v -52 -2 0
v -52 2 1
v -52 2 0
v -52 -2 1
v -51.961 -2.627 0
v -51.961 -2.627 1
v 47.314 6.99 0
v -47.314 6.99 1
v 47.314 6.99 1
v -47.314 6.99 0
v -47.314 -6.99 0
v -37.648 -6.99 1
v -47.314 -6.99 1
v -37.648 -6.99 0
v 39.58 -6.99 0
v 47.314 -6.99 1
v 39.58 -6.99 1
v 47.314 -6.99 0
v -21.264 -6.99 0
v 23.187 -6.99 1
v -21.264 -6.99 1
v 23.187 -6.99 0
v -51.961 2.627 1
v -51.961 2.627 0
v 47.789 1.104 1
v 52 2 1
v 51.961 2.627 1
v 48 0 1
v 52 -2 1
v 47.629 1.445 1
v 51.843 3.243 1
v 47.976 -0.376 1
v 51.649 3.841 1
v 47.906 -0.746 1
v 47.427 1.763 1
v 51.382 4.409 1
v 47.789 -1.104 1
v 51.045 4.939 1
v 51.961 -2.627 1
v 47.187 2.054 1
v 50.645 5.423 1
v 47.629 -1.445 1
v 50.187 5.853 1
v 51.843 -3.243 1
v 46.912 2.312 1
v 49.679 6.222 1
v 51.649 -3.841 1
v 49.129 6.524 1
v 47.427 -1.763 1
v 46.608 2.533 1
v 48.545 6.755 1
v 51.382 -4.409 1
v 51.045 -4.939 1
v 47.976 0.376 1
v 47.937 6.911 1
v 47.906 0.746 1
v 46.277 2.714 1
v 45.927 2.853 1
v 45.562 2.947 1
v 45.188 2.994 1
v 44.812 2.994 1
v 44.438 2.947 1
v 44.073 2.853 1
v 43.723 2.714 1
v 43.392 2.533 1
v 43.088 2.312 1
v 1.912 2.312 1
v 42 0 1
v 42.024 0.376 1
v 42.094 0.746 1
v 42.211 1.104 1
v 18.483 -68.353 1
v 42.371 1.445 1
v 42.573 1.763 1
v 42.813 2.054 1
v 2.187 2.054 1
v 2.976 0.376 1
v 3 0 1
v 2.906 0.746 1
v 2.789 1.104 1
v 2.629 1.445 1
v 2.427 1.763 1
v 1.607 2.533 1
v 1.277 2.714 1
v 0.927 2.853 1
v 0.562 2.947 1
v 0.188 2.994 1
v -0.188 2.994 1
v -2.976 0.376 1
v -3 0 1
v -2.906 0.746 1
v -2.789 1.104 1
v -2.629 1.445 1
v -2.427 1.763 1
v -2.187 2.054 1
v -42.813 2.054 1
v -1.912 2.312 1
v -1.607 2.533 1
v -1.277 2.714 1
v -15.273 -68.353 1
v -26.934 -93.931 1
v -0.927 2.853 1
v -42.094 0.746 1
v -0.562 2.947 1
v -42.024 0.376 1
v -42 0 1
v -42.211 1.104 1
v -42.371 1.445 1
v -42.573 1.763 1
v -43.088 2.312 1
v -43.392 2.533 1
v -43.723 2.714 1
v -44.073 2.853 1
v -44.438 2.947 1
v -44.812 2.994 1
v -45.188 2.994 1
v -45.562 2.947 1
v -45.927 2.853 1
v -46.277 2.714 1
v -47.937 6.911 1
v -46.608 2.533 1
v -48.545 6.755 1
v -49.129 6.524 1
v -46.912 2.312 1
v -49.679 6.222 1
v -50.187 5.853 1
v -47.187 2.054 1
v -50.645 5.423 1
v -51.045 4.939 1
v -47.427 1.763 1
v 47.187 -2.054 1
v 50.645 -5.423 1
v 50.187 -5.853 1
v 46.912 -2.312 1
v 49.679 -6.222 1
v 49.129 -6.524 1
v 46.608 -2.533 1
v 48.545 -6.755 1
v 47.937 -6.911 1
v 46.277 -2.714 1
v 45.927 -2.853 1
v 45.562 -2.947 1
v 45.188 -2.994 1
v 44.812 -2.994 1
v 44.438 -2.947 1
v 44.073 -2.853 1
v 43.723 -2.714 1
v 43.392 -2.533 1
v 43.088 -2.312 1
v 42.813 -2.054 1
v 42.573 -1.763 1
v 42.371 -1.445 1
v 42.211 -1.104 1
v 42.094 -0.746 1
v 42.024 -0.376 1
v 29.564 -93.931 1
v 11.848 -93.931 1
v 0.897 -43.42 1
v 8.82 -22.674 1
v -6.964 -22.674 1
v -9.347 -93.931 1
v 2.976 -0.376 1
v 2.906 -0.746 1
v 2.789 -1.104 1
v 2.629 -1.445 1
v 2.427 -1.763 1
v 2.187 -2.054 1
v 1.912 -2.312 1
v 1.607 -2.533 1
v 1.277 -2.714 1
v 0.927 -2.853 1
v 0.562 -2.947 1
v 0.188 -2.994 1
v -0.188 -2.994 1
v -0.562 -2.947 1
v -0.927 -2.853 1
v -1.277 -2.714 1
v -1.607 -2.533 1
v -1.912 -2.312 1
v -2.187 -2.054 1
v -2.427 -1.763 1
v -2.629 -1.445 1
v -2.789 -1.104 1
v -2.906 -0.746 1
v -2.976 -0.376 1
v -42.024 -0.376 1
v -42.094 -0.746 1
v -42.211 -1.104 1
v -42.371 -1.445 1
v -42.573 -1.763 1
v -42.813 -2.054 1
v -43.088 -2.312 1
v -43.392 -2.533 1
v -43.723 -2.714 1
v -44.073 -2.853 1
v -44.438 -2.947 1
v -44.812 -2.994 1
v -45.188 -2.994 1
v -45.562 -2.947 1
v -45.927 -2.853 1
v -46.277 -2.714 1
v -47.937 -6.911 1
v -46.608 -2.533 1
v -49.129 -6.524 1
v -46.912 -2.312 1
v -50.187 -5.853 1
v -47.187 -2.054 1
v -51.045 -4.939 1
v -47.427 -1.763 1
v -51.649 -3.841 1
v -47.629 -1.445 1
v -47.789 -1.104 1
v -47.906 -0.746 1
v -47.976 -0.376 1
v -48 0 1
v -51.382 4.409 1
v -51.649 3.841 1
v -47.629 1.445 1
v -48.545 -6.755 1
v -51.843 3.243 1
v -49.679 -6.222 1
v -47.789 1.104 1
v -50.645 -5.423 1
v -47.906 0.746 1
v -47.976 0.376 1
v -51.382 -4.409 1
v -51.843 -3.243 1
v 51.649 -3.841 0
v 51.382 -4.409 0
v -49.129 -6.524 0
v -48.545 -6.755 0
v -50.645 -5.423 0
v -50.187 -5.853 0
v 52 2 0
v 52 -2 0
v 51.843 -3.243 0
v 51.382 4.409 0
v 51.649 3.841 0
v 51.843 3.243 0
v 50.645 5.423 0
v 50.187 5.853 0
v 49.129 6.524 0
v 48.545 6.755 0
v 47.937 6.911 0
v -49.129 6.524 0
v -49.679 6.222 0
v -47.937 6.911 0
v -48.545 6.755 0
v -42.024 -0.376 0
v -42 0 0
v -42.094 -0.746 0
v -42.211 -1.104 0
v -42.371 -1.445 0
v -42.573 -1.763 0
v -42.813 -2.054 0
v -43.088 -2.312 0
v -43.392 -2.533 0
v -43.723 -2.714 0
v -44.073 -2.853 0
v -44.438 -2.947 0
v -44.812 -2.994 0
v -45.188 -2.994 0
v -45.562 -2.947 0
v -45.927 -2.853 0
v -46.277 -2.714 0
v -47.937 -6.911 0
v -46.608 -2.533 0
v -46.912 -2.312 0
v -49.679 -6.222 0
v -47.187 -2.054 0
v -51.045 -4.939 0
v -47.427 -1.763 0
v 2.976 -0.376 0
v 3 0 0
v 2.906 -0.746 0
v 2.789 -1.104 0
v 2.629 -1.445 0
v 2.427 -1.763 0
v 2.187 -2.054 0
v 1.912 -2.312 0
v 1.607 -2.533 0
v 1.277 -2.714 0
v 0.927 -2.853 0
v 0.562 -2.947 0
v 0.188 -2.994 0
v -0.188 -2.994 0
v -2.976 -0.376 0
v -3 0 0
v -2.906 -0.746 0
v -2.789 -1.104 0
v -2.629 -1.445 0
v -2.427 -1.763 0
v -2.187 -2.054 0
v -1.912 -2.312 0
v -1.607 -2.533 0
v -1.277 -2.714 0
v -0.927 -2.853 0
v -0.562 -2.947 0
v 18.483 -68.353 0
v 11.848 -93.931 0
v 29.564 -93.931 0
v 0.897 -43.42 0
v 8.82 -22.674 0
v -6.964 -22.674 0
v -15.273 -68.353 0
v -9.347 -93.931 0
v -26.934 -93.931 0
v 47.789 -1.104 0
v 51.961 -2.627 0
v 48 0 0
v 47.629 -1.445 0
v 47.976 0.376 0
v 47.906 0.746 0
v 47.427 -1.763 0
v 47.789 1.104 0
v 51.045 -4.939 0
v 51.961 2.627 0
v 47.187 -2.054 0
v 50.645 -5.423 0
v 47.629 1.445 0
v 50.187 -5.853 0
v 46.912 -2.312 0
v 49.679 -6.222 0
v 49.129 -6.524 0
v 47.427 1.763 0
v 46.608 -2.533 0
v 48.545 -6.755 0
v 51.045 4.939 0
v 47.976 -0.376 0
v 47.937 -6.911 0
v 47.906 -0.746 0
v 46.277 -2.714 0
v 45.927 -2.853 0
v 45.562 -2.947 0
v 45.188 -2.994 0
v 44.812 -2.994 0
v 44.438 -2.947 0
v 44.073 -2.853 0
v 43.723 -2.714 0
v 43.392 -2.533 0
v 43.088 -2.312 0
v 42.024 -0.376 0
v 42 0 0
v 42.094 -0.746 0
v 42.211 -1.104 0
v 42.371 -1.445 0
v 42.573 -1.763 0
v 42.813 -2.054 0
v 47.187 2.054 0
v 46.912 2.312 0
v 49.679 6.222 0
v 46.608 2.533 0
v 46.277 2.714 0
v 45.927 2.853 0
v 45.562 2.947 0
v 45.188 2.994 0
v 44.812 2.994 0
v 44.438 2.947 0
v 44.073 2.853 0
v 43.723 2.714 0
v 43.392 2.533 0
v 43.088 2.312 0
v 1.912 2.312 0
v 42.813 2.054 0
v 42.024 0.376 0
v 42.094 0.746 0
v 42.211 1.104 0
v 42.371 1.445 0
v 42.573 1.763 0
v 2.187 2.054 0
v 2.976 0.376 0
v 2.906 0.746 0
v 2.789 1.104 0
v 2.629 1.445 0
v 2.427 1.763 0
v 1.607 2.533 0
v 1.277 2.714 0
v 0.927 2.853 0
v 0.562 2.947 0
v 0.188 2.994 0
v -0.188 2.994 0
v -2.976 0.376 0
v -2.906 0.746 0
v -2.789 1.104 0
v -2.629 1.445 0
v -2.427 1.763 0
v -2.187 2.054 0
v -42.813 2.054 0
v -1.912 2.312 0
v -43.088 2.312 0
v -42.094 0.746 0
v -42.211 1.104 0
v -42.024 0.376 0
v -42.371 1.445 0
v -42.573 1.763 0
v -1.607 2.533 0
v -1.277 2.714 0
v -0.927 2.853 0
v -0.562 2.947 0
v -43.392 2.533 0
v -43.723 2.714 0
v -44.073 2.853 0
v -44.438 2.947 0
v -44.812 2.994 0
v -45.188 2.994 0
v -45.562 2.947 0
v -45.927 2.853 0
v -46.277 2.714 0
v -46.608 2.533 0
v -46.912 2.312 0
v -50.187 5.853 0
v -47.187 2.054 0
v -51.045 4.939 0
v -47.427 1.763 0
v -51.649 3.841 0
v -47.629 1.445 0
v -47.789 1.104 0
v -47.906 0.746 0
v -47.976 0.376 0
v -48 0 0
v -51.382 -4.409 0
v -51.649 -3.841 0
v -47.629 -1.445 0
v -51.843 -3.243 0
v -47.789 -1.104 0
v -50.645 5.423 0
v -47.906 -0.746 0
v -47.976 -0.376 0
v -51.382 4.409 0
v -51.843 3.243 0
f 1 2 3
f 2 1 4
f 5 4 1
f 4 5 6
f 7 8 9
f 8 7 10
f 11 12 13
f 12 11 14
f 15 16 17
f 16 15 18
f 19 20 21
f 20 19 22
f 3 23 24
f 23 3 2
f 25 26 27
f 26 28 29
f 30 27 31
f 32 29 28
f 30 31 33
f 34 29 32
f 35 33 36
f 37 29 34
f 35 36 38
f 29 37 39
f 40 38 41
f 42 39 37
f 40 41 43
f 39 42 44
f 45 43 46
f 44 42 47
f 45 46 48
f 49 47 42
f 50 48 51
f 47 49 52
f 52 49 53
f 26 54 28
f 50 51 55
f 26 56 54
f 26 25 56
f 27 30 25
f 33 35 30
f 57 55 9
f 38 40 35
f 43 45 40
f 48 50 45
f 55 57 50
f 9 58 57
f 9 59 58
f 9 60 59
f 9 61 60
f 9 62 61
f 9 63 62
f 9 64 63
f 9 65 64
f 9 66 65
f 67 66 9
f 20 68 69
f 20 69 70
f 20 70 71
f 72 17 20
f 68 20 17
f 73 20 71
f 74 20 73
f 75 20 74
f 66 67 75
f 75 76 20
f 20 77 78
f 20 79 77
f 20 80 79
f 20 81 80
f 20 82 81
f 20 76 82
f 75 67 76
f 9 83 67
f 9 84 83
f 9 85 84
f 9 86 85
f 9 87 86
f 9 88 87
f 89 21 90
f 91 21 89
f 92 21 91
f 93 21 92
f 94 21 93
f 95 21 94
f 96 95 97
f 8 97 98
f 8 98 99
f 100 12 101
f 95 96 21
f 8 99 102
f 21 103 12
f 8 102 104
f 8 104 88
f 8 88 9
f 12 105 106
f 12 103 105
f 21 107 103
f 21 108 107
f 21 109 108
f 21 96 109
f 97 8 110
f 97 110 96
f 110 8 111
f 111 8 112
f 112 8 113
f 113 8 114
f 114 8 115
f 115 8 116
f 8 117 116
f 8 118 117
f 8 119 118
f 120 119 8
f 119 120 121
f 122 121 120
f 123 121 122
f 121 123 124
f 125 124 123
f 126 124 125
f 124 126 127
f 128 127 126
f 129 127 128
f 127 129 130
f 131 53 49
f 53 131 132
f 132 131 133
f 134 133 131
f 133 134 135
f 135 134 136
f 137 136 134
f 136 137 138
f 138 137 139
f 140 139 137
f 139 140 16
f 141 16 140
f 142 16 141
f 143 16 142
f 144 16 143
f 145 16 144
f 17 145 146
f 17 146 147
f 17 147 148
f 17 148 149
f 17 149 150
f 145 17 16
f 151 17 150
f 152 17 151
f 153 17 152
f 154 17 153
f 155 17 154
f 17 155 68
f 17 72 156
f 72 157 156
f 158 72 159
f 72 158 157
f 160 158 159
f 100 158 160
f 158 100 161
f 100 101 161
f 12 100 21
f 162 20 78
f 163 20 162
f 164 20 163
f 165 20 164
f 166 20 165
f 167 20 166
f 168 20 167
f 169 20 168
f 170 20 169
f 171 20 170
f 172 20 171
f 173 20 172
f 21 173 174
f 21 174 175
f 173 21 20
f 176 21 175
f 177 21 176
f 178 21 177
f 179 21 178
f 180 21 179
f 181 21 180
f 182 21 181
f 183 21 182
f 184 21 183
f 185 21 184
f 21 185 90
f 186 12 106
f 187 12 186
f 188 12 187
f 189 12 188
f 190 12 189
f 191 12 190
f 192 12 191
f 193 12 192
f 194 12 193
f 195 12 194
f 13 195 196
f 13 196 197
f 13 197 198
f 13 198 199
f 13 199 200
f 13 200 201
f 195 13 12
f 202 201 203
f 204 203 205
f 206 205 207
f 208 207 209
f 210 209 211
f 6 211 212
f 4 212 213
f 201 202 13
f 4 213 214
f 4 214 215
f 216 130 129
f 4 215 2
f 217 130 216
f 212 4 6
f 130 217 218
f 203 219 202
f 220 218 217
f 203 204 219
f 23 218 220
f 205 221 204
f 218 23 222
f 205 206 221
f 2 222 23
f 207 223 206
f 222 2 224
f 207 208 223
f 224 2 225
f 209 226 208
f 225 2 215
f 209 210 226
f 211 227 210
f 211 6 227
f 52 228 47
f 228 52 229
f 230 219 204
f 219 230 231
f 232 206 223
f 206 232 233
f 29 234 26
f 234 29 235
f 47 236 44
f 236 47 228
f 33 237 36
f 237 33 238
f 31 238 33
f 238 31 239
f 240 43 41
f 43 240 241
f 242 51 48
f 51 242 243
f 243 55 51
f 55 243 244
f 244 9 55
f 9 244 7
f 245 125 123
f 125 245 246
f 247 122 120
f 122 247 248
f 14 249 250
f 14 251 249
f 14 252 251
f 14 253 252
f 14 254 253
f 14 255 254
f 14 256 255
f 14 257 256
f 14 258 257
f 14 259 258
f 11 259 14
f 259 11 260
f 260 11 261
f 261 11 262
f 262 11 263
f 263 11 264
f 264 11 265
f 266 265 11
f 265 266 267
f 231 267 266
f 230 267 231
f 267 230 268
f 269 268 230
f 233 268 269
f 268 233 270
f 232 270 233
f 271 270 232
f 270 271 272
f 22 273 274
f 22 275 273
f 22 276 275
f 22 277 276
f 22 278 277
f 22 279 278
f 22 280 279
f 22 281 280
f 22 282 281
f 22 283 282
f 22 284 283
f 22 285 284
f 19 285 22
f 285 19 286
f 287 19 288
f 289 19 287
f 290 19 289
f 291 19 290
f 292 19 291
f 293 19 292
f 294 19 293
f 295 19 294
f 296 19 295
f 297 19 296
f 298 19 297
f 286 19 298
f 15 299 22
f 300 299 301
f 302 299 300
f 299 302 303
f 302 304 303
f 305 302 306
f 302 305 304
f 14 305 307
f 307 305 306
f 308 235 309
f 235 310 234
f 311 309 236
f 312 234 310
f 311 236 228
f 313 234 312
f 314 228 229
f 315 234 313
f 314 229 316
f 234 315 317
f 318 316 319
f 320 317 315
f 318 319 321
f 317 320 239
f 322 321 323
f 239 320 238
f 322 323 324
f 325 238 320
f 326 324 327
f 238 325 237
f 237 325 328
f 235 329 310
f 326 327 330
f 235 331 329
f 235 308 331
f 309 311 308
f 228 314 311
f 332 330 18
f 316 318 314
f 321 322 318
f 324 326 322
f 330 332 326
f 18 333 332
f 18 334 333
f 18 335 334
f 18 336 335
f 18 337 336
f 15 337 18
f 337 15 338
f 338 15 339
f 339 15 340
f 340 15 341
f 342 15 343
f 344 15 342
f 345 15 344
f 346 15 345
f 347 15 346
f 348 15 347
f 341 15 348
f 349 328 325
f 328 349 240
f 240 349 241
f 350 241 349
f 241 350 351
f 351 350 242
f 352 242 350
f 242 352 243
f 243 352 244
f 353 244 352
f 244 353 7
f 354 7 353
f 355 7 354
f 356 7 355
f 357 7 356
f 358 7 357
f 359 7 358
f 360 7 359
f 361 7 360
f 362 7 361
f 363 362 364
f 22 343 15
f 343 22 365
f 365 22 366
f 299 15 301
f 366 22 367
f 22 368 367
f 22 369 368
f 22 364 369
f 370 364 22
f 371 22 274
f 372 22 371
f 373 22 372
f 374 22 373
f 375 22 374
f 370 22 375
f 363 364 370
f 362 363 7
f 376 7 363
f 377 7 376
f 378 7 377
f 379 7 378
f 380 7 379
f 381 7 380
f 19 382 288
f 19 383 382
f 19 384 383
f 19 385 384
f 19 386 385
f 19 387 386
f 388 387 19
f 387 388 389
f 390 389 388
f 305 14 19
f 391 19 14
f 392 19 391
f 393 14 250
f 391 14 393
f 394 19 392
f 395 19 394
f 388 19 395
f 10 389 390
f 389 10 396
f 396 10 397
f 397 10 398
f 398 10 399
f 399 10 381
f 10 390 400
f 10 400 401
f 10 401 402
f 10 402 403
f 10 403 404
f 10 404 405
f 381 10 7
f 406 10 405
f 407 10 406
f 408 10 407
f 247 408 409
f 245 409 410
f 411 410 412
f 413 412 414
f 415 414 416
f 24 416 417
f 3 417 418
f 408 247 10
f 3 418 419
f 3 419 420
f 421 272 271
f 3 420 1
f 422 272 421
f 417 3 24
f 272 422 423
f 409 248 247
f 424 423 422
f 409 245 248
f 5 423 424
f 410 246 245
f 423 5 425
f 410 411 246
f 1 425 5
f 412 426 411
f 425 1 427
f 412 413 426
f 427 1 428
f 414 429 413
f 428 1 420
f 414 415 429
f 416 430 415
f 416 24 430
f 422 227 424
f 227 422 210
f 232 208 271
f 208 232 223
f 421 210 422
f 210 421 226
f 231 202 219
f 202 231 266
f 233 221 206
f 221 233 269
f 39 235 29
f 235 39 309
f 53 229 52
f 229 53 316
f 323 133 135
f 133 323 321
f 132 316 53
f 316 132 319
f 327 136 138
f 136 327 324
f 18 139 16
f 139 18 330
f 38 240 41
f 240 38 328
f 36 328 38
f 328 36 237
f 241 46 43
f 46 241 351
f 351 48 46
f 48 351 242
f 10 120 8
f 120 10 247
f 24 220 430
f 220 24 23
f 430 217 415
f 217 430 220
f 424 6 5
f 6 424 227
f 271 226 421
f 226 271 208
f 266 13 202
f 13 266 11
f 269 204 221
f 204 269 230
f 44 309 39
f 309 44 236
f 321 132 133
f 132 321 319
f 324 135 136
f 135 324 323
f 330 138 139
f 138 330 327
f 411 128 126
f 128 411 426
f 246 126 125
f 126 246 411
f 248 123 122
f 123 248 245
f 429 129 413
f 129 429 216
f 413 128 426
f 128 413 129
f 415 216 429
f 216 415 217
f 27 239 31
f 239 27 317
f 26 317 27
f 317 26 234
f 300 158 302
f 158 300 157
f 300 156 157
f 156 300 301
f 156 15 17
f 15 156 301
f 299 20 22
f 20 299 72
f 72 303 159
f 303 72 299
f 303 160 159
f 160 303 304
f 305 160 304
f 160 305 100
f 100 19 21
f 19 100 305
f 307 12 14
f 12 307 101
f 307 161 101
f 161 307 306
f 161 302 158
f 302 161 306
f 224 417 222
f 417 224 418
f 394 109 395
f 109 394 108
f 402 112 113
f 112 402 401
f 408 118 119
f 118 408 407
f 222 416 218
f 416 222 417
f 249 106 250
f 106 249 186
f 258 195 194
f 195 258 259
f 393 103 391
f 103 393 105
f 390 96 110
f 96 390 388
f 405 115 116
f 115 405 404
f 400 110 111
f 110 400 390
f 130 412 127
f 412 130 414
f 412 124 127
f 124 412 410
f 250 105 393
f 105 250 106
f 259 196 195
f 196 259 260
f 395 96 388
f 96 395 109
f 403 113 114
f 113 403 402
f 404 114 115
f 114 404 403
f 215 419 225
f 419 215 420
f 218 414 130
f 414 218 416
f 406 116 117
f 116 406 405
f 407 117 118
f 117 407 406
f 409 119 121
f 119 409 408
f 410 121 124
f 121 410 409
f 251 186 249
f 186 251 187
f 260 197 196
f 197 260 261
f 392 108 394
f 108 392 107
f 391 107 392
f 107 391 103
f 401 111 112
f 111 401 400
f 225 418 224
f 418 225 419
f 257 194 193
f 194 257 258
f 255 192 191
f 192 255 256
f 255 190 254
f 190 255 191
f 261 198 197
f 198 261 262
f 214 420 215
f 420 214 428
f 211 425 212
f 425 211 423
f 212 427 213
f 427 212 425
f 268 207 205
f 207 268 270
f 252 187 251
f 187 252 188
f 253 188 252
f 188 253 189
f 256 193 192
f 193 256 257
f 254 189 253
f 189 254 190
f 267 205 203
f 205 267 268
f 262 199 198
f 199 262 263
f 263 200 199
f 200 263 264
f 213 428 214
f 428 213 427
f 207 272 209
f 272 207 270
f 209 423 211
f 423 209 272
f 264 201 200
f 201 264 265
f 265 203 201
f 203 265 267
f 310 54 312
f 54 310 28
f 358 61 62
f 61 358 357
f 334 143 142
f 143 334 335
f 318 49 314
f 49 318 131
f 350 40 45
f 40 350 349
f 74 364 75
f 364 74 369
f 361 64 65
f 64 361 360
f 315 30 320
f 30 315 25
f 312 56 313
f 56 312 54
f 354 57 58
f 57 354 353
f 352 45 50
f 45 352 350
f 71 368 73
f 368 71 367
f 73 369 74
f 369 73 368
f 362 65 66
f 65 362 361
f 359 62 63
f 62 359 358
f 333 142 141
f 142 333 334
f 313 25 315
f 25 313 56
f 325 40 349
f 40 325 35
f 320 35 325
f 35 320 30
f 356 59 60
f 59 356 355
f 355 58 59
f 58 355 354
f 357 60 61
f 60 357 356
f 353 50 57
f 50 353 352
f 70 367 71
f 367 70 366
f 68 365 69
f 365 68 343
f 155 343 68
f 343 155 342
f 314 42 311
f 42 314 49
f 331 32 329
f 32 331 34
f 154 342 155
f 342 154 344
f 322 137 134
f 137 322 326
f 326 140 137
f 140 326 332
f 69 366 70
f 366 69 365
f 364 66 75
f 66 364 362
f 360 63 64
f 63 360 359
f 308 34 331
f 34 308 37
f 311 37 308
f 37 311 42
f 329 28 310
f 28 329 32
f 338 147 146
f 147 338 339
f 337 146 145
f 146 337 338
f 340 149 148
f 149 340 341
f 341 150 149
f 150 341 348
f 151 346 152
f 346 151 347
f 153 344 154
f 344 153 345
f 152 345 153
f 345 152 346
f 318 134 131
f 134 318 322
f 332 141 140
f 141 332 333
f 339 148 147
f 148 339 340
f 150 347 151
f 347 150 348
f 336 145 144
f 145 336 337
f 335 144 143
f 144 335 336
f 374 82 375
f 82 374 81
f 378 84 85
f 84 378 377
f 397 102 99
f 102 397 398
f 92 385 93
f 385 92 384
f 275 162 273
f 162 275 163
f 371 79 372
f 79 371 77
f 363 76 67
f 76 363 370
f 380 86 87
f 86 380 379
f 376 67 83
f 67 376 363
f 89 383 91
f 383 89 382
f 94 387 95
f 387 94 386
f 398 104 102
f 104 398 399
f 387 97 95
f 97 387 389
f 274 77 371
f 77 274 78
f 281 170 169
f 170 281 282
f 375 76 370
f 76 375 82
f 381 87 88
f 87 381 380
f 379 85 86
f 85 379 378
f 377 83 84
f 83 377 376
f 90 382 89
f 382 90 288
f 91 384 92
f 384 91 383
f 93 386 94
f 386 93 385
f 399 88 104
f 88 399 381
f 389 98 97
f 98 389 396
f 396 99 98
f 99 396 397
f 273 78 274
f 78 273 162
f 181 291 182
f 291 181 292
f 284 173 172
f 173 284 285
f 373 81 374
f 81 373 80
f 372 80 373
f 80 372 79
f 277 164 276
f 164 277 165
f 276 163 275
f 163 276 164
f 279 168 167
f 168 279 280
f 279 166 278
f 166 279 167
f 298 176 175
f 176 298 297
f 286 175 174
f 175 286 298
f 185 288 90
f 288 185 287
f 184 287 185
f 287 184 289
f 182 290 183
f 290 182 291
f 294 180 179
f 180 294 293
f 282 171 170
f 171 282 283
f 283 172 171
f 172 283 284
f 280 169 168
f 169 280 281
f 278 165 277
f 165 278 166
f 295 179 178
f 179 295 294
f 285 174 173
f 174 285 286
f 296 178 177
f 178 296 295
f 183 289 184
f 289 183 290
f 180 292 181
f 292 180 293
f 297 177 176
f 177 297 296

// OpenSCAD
$fn = 50;


difference() {
	union() {
		translate(v = [0, 0, 0]) {
			rotate(a = [0, 0, 0]) {
				hull() {
					translate(v = [-47.0000000000, 2.0000000000, 0]) {
						rotate(a = [0, 0, 0]) {
							translate(v = [0, 0, 0]) {
								rotate(a = [0, 0, 0]) {
									cylinder(h = 1, r = 5);
								}
							}
						}
					}
					translate(v = [47.0000000000, 2.0000000000, 0]) {
						rotate(a = [0, 0, 0]) {
							translate(v = [0, 0, 0]) {
								rotate(a = [0, 0, 0]) {
									cylinder(h = 1, r = 5);
								}
							}
						}
					}
					translate(v = [-47.0000000000, -2.0000000000, 0]) {
						rotate(a = [0, 0, 0]) {
							translate(v = [0, 0, 0]) {
								rotate(a = [0, 0, 0]) {
									cylinder(h = 1, r = 5);
								}
							}
						}
					}
					translate(v = [47.0000000000, -2.0000000000, 0]) {
						rotate(a = [0, 0, 0]) {
							translate(v = [0, 0, 0]) {
								rotate(a = [0, 0, 0]) {
									cylinder(h = 1, r = 5);
								}
							}
						}
					}
				}
			}
		}
		translate(v = [0, 0, 0]) {
			rotate(a = [0, 0, 0]) {
				linear_extrude(height = 1) {
					text(font = "DejaVu Sans Mono:style=Bold", halign = "center", size = 95, text = "W", valign = "top");
				}
			}
		}
	}
	union() {
		translate(v = [-45.0000000000, 0.0000000000, -125.0000000000]) {
			rotate(a = [0, 0, 0]) {
				cylinder(h = 250, r = 3.0000000000);
			}
		}
		translate(v = [45.0000000000, 0.0000000000, -125.0000000000]) {
			rotate(a = [0, 0, 0]) {
				cylinder(h = 250, r = 3.0000000000);
			}
		}
		translate(v = [45.0000000000, 0.0000000000, -125.0000000000]) {
			rotate(a = [0, 0, 0]) {
				cylinder(h = 250, r = 3.0000000000);
			}
		}
		translate(v = [0, 0, -125.0000000000]) {
			rotate(a = [0, 0, 0]) {
				cylinder(h = 250, r = 3.0000000000);
			}
		}
	}
}
